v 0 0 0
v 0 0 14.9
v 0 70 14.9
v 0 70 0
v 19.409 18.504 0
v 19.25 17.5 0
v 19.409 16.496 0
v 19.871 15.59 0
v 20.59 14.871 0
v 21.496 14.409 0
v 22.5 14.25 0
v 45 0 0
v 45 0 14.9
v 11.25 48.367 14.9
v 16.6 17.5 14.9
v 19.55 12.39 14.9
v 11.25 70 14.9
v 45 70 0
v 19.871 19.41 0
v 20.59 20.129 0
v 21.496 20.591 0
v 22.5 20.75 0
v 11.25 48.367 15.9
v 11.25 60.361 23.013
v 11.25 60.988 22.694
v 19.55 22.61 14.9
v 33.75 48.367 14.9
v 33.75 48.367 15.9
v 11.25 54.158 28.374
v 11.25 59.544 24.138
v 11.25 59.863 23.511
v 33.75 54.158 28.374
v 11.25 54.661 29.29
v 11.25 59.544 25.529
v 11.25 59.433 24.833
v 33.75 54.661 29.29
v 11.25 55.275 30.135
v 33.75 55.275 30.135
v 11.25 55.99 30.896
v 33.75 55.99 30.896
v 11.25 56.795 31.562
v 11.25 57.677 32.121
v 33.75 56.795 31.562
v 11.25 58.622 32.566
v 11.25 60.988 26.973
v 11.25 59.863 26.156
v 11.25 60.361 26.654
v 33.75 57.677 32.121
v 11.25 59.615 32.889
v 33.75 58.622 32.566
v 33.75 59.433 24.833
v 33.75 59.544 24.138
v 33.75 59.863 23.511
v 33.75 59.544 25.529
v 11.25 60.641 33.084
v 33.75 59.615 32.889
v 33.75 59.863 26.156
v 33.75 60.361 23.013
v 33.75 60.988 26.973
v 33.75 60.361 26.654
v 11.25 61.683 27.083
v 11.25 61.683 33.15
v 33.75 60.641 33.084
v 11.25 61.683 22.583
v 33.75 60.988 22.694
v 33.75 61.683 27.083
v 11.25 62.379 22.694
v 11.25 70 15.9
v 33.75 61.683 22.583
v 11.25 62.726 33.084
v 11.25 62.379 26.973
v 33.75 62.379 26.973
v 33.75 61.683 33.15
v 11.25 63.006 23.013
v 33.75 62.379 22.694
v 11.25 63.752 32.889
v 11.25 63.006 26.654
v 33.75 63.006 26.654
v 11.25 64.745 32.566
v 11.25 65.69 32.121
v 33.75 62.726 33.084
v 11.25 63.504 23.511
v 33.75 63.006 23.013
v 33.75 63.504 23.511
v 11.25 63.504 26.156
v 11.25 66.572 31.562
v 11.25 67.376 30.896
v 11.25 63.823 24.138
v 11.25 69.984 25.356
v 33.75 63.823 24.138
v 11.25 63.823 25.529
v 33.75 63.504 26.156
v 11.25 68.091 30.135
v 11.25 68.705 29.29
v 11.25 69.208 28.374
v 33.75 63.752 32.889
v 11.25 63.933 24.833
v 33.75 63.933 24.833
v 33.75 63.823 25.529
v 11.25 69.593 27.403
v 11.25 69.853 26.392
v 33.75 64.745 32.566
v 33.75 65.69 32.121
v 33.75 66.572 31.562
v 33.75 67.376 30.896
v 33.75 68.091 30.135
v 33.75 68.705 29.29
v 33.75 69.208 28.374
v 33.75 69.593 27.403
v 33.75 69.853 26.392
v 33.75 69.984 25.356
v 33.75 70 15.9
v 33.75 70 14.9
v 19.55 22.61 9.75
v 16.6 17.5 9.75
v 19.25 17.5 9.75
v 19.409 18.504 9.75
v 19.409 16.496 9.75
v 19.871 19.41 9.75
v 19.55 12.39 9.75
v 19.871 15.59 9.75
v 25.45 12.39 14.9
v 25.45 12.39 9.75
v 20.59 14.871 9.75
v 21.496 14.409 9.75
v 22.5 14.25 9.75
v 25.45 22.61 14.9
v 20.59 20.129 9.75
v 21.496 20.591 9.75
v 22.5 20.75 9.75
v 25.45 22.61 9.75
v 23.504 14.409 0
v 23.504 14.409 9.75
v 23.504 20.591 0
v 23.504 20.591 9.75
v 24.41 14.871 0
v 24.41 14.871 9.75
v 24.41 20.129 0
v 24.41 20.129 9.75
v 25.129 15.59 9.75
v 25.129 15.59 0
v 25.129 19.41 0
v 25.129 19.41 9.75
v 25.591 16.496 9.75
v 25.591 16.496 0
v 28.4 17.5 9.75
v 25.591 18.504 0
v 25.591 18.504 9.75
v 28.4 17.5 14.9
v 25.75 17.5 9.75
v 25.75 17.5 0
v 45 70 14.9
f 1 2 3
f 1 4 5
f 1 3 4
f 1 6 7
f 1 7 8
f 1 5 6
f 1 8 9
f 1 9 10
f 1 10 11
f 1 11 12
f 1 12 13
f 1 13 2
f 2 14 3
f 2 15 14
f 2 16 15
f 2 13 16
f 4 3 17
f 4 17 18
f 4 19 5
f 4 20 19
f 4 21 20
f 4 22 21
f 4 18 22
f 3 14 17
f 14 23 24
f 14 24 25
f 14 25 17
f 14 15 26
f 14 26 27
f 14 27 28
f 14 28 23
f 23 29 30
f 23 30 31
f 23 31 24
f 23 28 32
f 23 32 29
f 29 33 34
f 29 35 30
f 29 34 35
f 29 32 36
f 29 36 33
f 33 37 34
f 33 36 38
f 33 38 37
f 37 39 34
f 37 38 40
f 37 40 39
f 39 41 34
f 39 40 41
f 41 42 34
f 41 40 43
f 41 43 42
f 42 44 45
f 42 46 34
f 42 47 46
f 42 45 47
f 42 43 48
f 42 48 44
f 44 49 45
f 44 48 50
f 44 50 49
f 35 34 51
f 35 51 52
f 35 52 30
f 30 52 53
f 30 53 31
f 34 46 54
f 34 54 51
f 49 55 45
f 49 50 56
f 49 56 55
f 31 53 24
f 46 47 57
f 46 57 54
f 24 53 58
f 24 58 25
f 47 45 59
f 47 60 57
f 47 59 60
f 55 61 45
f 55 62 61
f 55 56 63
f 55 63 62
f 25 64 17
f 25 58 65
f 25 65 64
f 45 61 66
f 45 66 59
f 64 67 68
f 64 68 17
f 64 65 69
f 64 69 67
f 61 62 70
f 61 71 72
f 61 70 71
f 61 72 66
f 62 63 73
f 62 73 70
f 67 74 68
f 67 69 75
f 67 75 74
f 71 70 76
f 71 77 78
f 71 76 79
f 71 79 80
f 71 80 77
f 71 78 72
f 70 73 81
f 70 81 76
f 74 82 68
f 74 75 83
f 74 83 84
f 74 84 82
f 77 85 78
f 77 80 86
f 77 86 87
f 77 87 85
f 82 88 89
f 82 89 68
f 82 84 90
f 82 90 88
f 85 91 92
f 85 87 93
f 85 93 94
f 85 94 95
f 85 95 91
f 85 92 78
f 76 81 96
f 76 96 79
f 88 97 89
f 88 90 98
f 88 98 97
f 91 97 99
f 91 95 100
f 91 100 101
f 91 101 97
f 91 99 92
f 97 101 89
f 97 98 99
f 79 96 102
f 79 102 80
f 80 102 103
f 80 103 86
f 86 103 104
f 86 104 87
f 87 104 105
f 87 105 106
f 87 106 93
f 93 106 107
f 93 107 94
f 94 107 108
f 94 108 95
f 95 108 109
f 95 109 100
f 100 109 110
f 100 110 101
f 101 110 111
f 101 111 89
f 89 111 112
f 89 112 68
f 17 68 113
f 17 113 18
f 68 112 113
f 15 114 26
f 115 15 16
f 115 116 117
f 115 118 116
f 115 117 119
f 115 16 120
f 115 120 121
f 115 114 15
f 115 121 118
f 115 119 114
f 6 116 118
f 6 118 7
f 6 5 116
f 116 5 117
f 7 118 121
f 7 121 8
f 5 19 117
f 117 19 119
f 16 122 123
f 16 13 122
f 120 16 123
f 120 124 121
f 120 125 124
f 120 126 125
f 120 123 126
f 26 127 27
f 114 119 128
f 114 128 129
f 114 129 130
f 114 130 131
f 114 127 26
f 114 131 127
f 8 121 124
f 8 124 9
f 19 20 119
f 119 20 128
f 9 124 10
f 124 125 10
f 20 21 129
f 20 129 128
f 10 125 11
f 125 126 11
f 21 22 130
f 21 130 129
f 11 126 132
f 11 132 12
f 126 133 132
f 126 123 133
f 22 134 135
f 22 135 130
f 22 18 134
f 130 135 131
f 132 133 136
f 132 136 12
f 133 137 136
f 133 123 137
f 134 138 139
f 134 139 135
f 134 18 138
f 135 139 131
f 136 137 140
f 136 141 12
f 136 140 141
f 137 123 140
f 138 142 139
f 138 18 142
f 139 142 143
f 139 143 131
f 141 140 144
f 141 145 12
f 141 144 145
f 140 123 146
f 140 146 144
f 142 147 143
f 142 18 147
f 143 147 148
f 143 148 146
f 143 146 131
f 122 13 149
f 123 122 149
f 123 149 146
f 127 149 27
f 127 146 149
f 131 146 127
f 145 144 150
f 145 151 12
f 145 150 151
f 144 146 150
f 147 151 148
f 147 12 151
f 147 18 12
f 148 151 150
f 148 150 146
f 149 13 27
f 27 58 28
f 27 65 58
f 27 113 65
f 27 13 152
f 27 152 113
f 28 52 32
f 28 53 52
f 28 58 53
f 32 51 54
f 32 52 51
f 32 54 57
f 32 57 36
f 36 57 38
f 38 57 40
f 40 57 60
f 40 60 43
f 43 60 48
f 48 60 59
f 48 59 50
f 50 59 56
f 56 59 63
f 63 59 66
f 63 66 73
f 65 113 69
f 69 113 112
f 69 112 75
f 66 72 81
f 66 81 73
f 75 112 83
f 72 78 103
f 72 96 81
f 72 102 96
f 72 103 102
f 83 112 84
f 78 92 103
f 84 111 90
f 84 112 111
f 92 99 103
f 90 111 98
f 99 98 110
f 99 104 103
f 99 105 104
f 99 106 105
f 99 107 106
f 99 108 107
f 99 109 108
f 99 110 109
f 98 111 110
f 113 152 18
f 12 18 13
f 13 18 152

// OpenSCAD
// file: ../888_3011.scad
module 888_3011_A (draft = true){

width = 45;
depth = 70;
height = basic_screw_length*2 + M6_nut_height;  //původně byla výška 20
//height = 20;

kloub_height = height/3;
kloub_diameter = depth/3;

	union(){
		//základní kostka
		difference(){
                    cube ([width, depth, height]);
			translate([width/2,depth/4,-global_clearance/2])
					union(){
								cylinder (h = height + global_clearance, r = M6_screw_diameter/2, $fn = 20);
						translate([0,0,height - M6_nut_height])
								cylinder (h = M6_nut_height + global_clearance + 10, r = M6_nut_diameter/2, $fn = 6);
					}
		}
		//kloub
		difference(){
			translate([width/4,depth - kloub_height - kloub_diameter/2,height])
					hull(){
                            translate([0, -5,0])
                                cube([width/2, kloub_height + kloub_diameter/2 + 5, 1]);
						translate([0,kloub_diameter/4 + kloub_height/2,kloub_height*2])
							rotate([0,90,0])
								cylinder(h = width/2, r = kloub_height/2 + kloub_diameter/4,  $fn = 50);
					}
			translate([width/4 - global_clearance/2,depth - kloub_height/2 - kloub_diameter/4,height + kloub_height*2])
				rotate([0,90,0])
					cylinder(h = width + global_clearance, r = M4_screw_diameter/2, $fn = 20);
		}

	}


}

module 888_3011_B(draft){

width = 45;
depth = 70;
height = 20;
//height = basic_screw_length*2 + M6_nut_height;
kloub_height = height/3;
kloub_diameter = depth/3;
tube_height = 50;
angle = 30;



			difference(){
				color([0,0.5,0])
					union(){
						cube([width, depth - kloub_diameter/4 - kloub_height/2, kloub_height + kloub_diameter/2]);
						translate([0,depth - kloub_diameter/4 - kloub_height/2,(kloub_height + kloub_diameter/2)/2])
		                    rotate([0,90,0])
		                       cylinder(h = width, r = kloub_height/2 + kloub_diameter/4, $fn = 50);
					}

				translate([width/4 - global_clearance/2,-global_clearance/2 + depth - depth/3,-global_clearance/2])
					cube([width/2 + global_clearance, depth/3 + global_clearance, height +  global_clearance]);

                // dira + zapusteni pro sroub skrz kloub
                translate([-global_clearance/2,depth - kloub_diameter/4 - kloub_height/2,kloub_height/2 + kloub_diameter/4])
					rotate([0,90,0])
						cylinder (h = width + global_clearance, r = M4_screw_diameter/2, $fn = 20);
                translate([-10+width/8, depth - kloub_diameter/4 - kloub_height/2, kloub_height/2 + kloub_diameter/4])
					rotate([0,90,0])
						cylinder (h = 10, r = M4_nut_diameter/2, $fn = 6);

                translate([width-width/8, depth - kloub_diameter/4 - kloub_height/2, kloub_height/2 + kloub_diameter/4])
					rotate([0,90,0])
						cylinder (h = 10, r = M4_nut_diameter/2, $fn = 6);

            	translate([0,0,10])
            		rotate([0,angle,0])
        				translate([width/2,(depth - kloub_diameter/4 - kloub_height/2)/3,kloub_height + kloub_diameter/2 - tube_height/3])
    						cylinder(h = tube_height, d = main_tube_outer_diameter, $fn = 200);
			}

	translate([0,0,10])
		rotate([0,angle,0])
			translate([width/2,(depth - kloub_diameter/4 - kloub_height/2)/3,kloub_height + kloub_diameter/2 - tube_height/3])
				difference(){
					cylinder(h = tube_height, r = main_tube_outer_diameter*0.8, $fn = 200);
					translate([0,0,-global_clearance/2+10])
						cylinder(h = tube_height + global_clearance, d = main_tube_outer_diameter, $fn = 50);

                    // dira + zapusteni pro sroub skrz trubku
                    translate([0, main_tube_outer_diameter, tube_height/2+10])
						rotate([90,0,0])
							cylinder(h = main_tube_outer_diameter*2, d = M3_screw_diameter, $fn = 200);
                    translate([0, 0,tube_height/2+10])
                        rotate([-90,0,0])
                            translate([0, 0, main_tube_outer_diameter*0.8 - M3_nut_height])
                                cylinder(h = main_tube_outer_diameter*2, d = M3_nut_diameter, $fn = 6);
                    translate([0, 0,tube_height/2+10])
                        rotate([90,0,0])
                            translate([0, 0, main_tube_outer_diameter*0.8 - M3_nut_height])
                                cylinder(h = main_tube_outer_diameter*2, d = M3_nut_diameter, $fn = 6);

                    // precnivajici casti casti
                    rotate([0,-angle, 0])
                        translate([-100, -100, -20])
                            cube([200, 200, 20]);
        		}
}

translate([0,0,- 5*2 - 4.9])
//translate([0,0,-20])
888_3011_A();
translate([0,0,1])
888_3011_B();

translate([0,0,-40])
mirror ([0,0,1])
888_3011_A();
translate([0,0,-40 - 2*5 - 4.9])
mirror([0,0,1])
888_3011_B();

include <../parameters.scad>
// main file
include <../../parameters.scad>
use <../888_3011.scad>

draft = false;
888_3011_A(draft);
